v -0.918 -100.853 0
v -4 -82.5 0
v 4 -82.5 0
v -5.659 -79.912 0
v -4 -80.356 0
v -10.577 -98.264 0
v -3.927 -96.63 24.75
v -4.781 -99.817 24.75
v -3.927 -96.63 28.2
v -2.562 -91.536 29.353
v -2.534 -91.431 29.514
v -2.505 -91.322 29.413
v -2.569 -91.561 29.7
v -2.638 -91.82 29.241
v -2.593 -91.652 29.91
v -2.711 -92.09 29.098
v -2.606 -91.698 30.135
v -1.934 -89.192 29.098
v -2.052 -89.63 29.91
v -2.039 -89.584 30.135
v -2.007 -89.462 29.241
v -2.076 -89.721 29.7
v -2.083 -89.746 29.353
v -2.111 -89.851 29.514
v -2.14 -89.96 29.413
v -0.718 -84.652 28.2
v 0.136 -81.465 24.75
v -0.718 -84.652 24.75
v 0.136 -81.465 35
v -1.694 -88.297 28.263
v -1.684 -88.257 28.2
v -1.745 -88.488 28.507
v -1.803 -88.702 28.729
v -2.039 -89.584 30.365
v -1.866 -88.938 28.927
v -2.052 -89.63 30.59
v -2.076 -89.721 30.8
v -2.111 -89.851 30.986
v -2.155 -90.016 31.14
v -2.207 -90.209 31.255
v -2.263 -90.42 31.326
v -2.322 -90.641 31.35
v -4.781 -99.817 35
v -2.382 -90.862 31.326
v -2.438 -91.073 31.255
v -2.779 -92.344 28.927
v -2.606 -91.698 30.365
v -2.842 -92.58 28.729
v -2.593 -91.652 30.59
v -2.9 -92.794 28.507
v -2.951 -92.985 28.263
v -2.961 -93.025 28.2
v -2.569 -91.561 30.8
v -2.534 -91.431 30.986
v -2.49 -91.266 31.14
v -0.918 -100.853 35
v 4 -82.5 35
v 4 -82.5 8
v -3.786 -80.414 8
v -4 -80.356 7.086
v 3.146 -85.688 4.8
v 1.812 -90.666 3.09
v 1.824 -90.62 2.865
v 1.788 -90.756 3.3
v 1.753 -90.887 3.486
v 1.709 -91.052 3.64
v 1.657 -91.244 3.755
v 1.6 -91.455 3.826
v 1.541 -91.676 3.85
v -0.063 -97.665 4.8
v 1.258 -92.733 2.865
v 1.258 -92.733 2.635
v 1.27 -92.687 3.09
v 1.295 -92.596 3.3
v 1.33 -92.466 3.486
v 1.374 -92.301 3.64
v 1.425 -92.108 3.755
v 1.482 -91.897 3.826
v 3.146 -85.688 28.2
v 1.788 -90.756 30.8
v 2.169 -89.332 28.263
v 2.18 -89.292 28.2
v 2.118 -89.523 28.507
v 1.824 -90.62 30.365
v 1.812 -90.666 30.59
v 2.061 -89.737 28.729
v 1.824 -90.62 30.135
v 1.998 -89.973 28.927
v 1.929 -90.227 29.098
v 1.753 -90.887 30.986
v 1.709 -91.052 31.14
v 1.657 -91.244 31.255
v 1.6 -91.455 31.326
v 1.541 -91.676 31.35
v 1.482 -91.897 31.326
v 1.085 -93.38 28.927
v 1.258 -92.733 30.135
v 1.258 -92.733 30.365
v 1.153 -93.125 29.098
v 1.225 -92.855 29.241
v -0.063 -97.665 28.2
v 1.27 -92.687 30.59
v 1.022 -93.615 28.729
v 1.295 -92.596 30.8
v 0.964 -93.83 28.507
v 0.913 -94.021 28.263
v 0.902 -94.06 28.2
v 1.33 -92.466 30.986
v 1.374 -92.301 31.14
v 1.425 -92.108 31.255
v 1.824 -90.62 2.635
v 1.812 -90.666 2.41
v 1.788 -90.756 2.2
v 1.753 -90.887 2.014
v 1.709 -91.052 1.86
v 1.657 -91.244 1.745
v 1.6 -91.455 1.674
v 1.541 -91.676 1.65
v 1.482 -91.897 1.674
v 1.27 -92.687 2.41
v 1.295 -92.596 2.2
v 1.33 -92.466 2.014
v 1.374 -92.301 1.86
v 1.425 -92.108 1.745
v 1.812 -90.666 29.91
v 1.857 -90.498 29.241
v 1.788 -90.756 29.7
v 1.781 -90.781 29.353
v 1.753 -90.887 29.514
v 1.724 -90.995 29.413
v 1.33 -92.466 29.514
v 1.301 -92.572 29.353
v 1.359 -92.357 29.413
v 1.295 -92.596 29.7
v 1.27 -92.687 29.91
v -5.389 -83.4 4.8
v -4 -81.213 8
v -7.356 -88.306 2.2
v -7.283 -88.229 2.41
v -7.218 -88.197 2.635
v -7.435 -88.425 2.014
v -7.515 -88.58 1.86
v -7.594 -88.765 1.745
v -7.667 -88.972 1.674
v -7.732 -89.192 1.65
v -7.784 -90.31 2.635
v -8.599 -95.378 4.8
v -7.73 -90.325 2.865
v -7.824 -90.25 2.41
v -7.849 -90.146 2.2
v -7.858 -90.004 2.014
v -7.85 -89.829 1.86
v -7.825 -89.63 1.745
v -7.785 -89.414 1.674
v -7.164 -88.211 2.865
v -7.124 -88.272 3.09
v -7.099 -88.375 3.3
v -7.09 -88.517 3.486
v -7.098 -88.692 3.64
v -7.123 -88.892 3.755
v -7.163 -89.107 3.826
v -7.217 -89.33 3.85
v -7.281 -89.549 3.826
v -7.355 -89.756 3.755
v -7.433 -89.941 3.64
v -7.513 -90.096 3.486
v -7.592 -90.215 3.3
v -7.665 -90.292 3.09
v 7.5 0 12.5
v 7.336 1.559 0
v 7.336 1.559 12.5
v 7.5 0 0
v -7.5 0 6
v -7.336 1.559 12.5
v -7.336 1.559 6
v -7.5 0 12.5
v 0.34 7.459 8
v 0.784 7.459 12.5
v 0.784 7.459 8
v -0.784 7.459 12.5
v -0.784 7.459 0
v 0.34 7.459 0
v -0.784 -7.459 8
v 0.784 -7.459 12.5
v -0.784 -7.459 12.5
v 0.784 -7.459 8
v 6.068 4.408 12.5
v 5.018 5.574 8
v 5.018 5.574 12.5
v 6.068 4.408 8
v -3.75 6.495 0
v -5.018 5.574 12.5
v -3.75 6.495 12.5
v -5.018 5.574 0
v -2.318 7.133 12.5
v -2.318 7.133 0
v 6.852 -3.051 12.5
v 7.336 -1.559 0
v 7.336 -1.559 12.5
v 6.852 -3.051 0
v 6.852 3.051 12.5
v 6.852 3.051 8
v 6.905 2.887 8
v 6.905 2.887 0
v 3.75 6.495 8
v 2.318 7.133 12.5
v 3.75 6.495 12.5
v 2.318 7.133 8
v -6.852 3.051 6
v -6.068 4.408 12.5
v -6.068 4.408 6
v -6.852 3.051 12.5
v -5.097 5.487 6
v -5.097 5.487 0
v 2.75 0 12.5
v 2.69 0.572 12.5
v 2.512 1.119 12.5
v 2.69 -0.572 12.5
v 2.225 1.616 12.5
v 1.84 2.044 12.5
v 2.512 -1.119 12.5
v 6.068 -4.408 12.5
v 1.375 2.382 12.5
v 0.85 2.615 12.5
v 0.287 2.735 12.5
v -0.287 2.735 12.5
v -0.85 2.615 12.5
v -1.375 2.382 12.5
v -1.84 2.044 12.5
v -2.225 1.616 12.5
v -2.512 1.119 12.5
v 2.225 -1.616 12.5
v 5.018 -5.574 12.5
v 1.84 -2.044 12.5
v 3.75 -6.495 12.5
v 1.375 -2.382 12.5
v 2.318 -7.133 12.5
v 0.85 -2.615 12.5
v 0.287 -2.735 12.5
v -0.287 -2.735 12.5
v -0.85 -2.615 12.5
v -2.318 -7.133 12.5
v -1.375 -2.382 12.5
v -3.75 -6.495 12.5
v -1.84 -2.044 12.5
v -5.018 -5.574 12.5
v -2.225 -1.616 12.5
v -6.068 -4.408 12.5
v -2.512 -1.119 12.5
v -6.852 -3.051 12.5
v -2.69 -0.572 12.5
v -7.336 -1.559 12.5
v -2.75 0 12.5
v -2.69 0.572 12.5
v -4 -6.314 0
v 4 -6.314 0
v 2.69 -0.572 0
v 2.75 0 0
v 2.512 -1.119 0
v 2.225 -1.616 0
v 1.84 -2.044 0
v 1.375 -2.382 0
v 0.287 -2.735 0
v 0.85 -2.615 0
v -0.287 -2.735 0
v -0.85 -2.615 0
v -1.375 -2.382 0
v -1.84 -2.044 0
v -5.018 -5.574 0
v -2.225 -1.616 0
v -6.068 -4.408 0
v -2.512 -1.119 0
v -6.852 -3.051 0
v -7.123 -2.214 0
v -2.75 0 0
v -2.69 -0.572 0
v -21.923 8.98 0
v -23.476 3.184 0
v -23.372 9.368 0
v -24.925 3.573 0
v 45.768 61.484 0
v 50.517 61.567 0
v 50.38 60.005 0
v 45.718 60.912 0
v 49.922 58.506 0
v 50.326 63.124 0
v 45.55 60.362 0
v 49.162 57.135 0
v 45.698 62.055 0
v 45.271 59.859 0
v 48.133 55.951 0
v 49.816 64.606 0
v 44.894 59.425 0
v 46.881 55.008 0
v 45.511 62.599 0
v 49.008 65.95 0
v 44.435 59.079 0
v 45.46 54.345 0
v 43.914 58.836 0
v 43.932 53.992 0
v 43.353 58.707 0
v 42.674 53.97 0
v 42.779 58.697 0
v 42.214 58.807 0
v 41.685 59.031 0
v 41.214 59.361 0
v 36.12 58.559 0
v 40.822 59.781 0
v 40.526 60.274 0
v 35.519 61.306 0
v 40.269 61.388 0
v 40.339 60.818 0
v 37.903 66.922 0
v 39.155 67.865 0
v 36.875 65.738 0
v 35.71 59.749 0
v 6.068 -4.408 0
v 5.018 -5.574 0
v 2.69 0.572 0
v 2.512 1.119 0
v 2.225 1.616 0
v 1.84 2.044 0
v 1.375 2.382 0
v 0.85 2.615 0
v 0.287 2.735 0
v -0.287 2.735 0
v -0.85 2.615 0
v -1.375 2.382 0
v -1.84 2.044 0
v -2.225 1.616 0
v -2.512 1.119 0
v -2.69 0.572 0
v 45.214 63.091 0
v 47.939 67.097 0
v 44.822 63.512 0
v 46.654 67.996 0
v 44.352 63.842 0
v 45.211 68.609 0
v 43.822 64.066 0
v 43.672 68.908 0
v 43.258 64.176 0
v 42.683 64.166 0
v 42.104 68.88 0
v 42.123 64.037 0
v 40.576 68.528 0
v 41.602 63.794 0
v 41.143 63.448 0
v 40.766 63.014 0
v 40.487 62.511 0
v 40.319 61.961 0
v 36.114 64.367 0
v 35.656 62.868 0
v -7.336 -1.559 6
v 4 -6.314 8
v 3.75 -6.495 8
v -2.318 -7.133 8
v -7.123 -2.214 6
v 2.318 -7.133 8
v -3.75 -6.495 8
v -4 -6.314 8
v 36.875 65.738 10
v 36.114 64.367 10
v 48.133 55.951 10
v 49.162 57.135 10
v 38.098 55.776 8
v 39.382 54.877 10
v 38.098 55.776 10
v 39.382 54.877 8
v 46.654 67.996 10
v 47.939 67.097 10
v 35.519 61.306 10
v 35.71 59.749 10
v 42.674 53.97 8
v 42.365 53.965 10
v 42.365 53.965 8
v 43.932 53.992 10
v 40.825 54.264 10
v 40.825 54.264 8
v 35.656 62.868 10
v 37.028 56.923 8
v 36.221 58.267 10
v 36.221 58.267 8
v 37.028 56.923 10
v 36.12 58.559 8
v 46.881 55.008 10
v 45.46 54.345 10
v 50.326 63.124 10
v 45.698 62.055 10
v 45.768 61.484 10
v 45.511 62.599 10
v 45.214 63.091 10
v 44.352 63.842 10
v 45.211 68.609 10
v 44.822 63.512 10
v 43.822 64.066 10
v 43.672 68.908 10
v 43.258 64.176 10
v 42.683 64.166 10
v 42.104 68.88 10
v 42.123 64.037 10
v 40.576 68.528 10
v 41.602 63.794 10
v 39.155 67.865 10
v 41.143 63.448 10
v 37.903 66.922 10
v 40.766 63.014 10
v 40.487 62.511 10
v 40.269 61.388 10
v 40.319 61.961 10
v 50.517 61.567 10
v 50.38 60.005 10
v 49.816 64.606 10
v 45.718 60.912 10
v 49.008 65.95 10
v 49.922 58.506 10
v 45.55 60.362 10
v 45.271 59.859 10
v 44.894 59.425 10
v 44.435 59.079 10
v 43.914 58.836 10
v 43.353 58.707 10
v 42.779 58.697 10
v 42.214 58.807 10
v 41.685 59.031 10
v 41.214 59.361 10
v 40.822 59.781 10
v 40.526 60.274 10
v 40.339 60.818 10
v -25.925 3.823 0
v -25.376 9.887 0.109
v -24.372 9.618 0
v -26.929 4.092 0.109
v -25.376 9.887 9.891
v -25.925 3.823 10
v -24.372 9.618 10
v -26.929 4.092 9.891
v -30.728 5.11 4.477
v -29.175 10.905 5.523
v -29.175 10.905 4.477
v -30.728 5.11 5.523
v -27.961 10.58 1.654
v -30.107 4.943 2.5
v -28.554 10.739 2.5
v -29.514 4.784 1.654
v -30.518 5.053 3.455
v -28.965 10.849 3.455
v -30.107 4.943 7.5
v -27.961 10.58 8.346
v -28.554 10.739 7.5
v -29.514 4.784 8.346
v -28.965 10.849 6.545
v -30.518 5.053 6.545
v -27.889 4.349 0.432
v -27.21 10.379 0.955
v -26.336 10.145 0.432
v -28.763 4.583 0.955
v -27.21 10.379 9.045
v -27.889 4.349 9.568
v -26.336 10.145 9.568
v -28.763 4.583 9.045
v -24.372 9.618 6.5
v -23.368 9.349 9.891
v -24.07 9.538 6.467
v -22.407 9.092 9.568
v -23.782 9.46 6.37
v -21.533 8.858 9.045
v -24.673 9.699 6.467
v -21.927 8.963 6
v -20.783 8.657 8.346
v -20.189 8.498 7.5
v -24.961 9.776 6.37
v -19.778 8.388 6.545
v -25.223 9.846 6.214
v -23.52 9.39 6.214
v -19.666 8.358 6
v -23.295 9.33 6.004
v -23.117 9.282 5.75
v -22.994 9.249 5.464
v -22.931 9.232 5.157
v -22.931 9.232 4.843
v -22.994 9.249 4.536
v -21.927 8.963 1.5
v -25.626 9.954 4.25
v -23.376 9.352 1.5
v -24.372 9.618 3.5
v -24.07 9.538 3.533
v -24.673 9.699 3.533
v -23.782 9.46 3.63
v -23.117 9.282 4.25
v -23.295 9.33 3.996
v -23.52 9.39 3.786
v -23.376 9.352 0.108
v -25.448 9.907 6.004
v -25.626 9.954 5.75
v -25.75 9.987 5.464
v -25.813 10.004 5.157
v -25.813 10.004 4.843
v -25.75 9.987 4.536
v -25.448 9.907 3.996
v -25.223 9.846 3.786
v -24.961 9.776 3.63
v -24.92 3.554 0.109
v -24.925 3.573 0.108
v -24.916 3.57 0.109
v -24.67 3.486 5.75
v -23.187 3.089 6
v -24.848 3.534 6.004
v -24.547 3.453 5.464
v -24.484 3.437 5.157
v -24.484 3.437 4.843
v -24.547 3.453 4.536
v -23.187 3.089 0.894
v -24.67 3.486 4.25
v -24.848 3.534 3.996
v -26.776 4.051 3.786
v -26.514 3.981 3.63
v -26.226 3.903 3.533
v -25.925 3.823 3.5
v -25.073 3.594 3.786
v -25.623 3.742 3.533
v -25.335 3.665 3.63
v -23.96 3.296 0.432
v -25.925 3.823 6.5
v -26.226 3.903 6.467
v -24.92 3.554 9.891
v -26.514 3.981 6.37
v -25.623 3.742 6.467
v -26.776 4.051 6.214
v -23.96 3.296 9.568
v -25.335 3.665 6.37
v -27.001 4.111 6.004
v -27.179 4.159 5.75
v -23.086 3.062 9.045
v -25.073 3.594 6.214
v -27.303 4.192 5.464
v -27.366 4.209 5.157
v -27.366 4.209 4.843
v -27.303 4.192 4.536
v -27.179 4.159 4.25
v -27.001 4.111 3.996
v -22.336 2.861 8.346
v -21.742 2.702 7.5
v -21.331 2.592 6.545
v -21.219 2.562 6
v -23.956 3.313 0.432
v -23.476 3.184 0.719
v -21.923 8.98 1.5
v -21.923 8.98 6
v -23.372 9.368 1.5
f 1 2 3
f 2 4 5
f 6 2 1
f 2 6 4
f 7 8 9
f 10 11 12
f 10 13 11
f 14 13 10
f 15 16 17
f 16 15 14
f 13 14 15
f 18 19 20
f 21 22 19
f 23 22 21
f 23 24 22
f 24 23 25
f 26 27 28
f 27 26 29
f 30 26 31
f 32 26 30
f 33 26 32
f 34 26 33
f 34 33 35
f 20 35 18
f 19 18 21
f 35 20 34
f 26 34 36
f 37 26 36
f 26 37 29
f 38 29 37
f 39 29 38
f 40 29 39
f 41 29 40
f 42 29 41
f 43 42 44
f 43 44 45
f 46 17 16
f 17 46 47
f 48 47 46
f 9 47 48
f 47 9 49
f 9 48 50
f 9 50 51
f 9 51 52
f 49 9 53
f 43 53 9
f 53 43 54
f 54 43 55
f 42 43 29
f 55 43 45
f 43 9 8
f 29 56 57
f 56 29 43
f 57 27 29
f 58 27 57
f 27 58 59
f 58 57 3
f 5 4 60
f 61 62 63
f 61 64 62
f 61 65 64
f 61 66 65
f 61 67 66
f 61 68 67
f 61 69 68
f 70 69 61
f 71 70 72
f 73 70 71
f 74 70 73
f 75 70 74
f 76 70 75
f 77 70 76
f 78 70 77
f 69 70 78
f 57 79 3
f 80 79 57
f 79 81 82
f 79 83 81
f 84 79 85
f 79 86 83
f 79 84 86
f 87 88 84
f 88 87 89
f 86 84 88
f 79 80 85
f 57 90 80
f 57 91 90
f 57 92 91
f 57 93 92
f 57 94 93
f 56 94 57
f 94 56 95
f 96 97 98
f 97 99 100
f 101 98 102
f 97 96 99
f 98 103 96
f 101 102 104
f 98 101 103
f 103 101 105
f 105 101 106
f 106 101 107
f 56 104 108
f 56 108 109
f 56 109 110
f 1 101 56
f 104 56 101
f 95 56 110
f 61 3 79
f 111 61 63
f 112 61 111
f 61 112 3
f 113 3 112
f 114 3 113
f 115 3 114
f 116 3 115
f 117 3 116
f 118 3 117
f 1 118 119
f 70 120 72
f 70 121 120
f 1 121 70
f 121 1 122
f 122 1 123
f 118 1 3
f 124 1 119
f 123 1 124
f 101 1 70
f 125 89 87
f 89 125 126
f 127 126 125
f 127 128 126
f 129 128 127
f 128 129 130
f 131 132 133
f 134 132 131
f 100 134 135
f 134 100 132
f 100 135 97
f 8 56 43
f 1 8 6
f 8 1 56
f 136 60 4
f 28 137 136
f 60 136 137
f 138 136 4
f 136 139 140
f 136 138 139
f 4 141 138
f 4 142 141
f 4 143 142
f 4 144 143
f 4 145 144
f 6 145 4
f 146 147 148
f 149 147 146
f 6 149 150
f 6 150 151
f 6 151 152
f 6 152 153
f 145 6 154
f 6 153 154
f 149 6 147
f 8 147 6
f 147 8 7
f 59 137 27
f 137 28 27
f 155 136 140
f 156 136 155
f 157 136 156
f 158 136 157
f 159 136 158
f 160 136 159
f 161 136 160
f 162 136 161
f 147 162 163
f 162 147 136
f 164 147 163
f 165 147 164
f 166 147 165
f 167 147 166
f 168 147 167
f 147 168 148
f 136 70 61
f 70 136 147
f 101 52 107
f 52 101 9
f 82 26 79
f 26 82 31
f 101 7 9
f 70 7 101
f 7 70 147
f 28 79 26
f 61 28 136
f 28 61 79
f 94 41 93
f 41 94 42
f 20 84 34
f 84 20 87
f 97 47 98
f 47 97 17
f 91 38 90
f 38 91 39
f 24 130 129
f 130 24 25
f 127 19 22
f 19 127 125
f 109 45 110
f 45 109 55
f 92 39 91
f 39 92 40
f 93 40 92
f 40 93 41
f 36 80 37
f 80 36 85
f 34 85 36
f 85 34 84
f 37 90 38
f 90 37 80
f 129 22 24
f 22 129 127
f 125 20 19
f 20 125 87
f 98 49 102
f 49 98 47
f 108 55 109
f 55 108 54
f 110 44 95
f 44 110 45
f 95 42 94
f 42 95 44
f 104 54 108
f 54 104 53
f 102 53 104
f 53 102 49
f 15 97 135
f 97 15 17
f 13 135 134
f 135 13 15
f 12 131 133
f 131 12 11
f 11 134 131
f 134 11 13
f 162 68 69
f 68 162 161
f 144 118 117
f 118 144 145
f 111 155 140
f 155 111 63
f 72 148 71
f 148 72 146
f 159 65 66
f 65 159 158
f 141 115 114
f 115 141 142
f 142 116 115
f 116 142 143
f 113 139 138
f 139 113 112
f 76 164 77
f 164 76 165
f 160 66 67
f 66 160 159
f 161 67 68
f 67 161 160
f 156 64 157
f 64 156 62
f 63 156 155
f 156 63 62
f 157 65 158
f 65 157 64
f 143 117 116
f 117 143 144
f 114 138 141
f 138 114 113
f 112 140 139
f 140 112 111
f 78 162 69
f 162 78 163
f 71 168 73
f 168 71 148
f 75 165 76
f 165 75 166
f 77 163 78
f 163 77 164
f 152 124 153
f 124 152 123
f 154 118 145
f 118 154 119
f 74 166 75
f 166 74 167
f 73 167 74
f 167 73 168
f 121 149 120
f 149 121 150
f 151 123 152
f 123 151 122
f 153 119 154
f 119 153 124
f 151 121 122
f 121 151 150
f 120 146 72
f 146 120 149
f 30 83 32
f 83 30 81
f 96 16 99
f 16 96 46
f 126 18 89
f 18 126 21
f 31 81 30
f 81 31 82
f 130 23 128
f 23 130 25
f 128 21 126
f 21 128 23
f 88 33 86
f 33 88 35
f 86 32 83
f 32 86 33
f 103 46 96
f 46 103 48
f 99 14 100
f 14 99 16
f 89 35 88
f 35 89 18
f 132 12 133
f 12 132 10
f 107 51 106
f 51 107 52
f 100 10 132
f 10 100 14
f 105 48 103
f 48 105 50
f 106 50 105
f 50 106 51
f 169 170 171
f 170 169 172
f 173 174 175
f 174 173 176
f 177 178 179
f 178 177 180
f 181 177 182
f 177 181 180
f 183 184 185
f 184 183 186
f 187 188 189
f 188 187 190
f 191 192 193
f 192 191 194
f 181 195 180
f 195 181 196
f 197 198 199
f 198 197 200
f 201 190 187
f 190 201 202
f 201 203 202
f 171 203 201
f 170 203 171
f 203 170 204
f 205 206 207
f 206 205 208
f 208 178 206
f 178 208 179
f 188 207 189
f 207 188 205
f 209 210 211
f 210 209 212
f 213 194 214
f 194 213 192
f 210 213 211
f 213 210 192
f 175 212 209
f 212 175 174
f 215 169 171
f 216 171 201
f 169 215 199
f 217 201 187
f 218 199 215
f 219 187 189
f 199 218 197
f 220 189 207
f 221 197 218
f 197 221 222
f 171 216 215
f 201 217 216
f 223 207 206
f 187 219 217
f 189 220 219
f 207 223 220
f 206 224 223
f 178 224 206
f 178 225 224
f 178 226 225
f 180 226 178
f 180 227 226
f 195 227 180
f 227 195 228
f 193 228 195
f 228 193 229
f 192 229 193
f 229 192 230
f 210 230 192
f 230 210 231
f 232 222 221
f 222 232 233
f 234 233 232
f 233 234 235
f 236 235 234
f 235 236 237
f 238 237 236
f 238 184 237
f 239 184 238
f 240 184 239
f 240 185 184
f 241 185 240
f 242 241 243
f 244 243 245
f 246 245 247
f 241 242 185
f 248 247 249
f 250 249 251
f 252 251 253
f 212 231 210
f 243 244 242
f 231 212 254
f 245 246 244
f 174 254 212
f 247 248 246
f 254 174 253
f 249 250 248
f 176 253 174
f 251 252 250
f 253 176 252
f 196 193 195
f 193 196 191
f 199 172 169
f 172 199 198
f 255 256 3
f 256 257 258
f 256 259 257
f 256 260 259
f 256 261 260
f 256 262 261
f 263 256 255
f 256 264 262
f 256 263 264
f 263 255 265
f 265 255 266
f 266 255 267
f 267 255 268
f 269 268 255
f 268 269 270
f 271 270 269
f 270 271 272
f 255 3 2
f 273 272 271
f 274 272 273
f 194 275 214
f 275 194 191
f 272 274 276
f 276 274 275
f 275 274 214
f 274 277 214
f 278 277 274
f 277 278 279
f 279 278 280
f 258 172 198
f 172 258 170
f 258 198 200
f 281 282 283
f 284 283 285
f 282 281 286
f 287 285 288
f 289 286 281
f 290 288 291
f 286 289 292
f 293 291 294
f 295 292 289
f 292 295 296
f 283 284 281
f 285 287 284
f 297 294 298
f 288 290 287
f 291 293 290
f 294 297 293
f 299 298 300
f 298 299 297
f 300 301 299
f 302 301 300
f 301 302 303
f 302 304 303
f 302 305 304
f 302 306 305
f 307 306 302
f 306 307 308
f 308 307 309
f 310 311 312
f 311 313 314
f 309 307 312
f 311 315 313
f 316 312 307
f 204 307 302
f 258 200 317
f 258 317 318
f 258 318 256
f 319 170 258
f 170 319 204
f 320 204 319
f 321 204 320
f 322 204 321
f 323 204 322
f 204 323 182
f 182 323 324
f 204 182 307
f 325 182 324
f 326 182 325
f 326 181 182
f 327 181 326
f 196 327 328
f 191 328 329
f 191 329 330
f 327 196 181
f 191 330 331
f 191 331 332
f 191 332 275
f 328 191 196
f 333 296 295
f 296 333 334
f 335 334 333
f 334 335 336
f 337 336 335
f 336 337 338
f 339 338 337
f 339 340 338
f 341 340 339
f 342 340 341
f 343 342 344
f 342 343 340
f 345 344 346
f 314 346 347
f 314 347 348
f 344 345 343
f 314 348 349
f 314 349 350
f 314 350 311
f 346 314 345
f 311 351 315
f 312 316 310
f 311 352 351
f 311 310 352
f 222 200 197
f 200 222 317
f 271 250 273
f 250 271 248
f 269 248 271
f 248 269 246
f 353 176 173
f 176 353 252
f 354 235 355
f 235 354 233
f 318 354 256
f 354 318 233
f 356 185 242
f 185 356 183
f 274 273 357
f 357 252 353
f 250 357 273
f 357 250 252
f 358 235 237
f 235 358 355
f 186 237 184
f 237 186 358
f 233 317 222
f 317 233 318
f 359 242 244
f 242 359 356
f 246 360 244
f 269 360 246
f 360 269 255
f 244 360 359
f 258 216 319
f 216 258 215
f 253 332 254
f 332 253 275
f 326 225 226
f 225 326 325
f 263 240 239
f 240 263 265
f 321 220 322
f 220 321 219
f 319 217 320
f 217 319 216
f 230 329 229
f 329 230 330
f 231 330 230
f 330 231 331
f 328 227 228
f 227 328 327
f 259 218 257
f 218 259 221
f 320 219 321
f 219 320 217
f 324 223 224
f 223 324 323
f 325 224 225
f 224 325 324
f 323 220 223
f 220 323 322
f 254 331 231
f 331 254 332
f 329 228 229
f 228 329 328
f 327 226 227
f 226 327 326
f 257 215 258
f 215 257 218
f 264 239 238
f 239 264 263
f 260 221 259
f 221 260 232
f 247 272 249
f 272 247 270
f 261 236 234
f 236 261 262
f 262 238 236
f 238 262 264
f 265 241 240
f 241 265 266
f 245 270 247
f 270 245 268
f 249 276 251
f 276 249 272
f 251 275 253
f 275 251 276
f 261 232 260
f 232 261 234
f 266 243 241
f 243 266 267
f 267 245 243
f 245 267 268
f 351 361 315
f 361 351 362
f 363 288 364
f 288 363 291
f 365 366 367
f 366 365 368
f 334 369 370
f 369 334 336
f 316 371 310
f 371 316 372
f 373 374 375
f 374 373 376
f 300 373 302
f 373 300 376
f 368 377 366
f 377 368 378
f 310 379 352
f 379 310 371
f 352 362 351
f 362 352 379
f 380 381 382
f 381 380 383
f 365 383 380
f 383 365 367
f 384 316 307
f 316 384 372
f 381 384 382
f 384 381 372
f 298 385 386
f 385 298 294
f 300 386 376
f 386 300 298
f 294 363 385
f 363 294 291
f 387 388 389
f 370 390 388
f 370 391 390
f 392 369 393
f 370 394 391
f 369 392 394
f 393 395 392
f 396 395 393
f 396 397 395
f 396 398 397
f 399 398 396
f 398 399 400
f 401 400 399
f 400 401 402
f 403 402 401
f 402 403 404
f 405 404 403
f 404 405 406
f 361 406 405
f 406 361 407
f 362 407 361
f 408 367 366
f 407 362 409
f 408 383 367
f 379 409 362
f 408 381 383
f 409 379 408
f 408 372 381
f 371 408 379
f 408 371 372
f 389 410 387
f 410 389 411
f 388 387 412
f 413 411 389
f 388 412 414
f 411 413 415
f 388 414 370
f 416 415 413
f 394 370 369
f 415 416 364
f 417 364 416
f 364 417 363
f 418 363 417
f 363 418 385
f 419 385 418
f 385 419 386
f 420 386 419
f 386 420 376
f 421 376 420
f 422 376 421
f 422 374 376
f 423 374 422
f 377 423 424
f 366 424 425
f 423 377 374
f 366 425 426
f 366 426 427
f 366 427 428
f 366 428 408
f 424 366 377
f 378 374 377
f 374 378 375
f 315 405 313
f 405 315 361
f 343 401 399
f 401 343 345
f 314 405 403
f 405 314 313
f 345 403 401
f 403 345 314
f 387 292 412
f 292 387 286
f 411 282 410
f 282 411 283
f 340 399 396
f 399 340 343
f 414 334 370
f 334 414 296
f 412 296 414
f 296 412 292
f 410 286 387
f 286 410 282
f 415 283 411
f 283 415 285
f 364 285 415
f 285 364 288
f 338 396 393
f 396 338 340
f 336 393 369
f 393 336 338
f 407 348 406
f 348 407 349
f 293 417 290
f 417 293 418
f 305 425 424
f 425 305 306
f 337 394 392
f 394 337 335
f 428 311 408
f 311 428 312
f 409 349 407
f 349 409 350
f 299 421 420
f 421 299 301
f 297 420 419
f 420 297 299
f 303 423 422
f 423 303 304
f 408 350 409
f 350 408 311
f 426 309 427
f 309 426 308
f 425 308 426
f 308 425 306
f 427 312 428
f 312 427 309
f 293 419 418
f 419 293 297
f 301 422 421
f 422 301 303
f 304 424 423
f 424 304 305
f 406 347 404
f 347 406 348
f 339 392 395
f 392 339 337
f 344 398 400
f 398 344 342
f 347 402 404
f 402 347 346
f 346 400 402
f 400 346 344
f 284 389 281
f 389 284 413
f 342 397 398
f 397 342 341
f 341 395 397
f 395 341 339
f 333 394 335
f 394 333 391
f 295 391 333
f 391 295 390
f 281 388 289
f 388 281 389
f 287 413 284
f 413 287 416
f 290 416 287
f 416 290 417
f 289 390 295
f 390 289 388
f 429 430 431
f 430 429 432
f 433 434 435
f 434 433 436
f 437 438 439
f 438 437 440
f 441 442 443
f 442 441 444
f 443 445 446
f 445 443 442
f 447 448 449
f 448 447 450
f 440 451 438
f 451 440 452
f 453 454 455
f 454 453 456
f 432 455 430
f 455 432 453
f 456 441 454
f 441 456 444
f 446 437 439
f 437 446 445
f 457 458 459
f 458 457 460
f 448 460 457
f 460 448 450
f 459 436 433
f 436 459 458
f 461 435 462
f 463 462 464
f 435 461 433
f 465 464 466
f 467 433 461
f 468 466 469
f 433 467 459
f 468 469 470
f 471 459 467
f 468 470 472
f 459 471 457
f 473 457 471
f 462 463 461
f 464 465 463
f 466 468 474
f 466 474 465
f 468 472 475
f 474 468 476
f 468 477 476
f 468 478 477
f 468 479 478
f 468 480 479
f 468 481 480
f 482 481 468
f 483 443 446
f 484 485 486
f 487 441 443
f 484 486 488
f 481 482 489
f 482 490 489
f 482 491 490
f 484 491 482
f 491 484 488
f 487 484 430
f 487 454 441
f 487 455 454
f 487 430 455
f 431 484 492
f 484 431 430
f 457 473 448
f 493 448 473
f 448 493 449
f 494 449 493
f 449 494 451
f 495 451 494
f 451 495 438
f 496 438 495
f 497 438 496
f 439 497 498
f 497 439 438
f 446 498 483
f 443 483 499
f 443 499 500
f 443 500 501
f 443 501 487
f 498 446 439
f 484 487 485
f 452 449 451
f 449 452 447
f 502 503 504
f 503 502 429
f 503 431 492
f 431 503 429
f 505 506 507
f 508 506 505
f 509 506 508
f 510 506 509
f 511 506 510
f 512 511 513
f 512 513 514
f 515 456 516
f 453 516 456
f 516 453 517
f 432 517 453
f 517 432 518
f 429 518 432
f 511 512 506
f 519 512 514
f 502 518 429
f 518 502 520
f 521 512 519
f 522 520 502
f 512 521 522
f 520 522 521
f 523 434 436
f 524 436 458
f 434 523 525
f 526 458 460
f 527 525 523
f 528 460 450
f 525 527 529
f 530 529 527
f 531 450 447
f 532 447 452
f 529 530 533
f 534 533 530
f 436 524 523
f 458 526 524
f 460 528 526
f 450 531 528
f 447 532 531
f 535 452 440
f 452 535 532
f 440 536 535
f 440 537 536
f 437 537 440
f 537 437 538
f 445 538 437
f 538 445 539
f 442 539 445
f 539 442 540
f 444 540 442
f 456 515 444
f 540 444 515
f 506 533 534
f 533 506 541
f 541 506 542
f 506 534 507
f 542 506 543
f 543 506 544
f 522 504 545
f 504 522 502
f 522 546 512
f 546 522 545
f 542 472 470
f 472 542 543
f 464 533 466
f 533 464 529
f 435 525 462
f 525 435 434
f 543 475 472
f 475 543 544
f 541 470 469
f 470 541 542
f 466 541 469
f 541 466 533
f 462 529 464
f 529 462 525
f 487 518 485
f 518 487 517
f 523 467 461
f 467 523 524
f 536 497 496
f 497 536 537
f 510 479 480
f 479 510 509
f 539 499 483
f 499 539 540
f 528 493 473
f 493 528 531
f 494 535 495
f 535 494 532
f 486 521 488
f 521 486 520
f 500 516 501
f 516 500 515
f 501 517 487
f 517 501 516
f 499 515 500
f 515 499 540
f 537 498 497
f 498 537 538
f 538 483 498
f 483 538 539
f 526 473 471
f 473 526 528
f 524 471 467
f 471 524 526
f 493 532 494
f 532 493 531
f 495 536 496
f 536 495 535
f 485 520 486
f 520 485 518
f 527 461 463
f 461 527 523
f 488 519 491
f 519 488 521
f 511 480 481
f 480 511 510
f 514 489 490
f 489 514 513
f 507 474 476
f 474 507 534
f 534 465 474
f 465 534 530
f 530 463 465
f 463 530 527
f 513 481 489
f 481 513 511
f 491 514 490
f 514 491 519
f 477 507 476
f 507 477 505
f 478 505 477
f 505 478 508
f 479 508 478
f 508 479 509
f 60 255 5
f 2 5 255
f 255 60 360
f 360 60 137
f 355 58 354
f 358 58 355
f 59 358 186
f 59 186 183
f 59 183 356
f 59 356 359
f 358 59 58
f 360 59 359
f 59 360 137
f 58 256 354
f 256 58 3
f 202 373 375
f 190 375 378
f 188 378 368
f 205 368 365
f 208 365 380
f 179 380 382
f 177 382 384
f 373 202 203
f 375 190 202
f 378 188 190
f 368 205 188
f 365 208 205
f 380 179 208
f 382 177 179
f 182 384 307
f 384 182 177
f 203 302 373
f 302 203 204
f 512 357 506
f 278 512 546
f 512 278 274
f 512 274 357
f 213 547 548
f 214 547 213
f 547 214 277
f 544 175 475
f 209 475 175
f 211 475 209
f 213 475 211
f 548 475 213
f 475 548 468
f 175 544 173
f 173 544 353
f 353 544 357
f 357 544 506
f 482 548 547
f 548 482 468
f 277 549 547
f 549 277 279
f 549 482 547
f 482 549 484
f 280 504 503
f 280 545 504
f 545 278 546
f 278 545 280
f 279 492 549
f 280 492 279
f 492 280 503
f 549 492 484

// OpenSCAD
$fn=30;

translate([4,-82.5,0])rotate([0,-90,-15])
translate([16.5,-9.5,0])
servo_bracket();

translate([-4,-82.5,0])cube([8,78.5,8]);

difference(){
cylinder(d=15,h=12.5);
translate([0,0,-1])cylinder(d=5.5,h=14);
}

rotate([0,0,145])
translate([-4,-70,0])cube([8,64.5,8]);

rotate([0,0,145])translate([0,-75,0])
difference(){
cylinder(d=15,h=10);
translate([0,0,-1])cylinder(d=5.5,h=12);
}

rotate([0,0,75]) translate([0,6,0])
linear_extrude(height=6)
polygon([[-4,0],[4,0],[3,17.5],[-3,17.5]]);

rotate([0,0,75]) translate([-3,19,0])
cube([6,6,1.5]);

translate([-1,0.25,5])rotate([0,0,75]) 
translate([0,25,0])rotate([0,90,0])
difference(){
cylinder(d=10,h=6,center=true);
cylinder(d=3,h=7,center=true);
}

module servo_bracket(){
difference(){
union(){
translate([1,0,2])cube([35,19,4],center=true);
translate([0,9.5,2])
rotate([90,0,0])linear_extrude(height=19)
polygon([[-16.5,0],[16.5,0],[-16.5,8]]);
translate([13.75,0,0])cylinder(d=8,h=2,$fn=60);
}
cube([23.4,12.4,50],center=true);
translate([13.75,0,-1])cylinder(d=2.2,h=5,$fn=30);
translate([-13.75,0,-1])cylinder(d=2.2,h=50,$fn=30);
translate([10,0,0])cylinder(d=6,h=12,$fn=60);
}
}
